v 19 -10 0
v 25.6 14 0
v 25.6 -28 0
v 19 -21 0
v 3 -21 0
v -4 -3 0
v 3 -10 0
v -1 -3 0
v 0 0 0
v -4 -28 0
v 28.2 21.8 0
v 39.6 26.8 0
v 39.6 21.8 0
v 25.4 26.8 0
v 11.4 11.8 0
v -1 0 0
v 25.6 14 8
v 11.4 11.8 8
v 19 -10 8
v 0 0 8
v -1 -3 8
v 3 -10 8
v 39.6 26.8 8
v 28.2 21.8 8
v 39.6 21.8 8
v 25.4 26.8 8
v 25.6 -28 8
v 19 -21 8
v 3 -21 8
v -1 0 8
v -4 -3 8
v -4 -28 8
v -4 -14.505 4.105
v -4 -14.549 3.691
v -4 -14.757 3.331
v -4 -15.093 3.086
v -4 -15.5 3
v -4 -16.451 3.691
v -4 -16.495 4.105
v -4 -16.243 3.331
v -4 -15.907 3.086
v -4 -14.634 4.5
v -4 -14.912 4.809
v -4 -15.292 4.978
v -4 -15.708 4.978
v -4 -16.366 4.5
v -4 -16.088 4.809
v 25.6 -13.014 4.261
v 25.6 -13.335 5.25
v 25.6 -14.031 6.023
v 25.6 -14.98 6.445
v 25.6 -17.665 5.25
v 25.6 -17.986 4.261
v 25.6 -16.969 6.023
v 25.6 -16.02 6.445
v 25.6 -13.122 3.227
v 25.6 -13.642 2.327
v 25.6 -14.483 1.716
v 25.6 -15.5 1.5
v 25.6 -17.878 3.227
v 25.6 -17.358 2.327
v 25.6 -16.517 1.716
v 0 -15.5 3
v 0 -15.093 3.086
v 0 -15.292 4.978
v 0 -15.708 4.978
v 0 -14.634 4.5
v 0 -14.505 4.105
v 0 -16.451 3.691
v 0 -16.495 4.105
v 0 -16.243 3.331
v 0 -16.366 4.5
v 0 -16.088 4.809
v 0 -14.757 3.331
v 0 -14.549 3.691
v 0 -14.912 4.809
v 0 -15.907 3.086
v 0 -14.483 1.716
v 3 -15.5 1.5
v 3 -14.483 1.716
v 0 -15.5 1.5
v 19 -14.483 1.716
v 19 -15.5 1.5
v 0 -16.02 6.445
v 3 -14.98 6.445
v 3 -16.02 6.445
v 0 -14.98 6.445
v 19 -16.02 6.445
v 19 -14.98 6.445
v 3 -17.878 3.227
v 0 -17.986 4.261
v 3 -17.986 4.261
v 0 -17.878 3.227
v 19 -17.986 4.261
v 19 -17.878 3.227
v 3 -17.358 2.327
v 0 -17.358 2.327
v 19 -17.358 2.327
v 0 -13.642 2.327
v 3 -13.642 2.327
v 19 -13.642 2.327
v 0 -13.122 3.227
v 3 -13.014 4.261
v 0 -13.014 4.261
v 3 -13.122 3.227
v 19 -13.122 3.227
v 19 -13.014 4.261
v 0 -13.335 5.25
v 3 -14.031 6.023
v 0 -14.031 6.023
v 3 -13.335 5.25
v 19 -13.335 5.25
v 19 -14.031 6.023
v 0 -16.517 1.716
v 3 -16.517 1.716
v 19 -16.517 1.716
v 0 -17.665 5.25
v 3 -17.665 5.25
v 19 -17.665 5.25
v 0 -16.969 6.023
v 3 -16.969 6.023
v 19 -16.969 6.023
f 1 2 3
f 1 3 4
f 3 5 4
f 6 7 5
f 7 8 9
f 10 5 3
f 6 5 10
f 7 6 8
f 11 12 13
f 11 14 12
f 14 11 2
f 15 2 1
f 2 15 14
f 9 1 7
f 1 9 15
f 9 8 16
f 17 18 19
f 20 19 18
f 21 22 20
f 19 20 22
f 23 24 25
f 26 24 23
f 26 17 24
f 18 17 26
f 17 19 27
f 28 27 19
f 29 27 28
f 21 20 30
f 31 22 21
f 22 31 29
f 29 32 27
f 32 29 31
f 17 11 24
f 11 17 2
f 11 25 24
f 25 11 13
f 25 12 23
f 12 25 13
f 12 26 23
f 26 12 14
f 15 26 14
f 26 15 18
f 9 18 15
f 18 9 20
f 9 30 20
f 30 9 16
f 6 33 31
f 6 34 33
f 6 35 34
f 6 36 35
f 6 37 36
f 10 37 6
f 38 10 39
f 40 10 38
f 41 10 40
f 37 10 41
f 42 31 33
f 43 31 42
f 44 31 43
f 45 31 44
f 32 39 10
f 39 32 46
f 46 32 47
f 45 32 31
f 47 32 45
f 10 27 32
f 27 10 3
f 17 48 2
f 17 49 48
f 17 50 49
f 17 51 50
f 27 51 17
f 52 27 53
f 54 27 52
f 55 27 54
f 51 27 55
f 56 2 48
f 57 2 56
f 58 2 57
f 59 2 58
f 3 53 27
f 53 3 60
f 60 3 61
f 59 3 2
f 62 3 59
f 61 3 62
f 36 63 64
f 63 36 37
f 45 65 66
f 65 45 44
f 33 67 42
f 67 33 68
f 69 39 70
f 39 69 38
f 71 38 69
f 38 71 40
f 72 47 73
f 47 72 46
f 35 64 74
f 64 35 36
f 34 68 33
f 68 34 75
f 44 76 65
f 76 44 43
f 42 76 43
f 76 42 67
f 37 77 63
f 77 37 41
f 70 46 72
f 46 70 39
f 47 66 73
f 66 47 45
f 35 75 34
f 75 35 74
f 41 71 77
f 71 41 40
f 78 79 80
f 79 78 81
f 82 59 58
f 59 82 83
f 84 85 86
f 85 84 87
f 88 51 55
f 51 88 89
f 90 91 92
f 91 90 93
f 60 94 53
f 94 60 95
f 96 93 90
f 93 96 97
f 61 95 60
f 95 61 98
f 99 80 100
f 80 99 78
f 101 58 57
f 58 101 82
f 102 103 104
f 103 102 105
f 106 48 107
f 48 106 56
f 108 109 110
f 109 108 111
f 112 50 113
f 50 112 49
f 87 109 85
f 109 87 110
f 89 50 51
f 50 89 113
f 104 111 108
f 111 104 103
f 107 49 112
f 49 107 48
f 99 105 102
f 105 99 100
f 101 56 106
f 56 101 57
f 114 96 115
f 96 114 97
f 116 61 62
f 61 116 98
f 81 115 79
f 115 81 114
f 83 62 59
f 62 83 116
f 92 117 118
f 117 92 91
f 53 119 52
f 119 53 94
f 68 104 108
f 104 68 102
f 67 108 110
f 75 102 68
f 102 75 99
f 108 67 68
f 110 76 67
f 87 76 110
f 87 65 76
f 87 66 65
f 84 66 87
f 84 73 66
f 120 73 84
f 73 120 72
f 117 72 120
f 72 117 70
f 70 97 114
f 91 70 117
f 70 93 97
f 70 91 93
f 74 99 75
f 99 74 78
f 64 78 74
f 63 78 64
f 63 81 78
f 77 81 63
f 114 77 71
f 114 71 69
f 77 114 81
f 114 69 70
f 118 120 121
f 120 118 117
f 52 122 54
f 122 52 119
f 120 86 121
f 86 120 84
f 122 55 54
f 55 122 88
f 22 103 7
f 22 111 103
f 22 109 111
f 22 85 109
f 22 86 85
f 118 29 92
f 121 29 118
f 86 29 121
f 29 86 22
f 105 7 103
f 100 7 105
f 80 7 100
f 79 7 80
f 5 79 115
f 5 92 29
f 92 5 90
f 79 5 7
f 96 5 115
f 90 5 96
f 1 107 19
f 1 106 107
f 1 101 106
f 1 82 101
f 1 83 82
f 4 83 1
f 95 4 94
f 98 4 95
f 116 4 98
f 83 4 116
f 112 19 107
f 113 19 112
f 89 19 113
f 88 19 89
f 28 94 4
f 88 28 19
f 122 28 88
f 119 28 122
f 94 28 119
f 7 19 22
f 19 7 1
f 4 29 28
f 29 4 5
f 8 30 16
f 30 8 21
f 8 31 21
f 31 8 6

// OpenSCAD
difference(){
linear_extrude(height=8)
polygon([[25.6,-28],[25.6,14],[28.2,21.8],[39.6,21.8],[39.6,26.8],[25.4,26.8],[11.4,11.8],[0,0],[-4,0],[-4,-28]]);
translate([-10,-15.5,4])rotate([0,90,0])
    cylinder(d=2,h=40,$fn=15);
translate([0,-15.5,4])rotate([0,90,0])
    cylinder(d=5,h=40,$fn=15);
translate([3,-21,-1])cube([16,11,12]);
translate([-6,-3,-1])cube([5,5,12]);
}
